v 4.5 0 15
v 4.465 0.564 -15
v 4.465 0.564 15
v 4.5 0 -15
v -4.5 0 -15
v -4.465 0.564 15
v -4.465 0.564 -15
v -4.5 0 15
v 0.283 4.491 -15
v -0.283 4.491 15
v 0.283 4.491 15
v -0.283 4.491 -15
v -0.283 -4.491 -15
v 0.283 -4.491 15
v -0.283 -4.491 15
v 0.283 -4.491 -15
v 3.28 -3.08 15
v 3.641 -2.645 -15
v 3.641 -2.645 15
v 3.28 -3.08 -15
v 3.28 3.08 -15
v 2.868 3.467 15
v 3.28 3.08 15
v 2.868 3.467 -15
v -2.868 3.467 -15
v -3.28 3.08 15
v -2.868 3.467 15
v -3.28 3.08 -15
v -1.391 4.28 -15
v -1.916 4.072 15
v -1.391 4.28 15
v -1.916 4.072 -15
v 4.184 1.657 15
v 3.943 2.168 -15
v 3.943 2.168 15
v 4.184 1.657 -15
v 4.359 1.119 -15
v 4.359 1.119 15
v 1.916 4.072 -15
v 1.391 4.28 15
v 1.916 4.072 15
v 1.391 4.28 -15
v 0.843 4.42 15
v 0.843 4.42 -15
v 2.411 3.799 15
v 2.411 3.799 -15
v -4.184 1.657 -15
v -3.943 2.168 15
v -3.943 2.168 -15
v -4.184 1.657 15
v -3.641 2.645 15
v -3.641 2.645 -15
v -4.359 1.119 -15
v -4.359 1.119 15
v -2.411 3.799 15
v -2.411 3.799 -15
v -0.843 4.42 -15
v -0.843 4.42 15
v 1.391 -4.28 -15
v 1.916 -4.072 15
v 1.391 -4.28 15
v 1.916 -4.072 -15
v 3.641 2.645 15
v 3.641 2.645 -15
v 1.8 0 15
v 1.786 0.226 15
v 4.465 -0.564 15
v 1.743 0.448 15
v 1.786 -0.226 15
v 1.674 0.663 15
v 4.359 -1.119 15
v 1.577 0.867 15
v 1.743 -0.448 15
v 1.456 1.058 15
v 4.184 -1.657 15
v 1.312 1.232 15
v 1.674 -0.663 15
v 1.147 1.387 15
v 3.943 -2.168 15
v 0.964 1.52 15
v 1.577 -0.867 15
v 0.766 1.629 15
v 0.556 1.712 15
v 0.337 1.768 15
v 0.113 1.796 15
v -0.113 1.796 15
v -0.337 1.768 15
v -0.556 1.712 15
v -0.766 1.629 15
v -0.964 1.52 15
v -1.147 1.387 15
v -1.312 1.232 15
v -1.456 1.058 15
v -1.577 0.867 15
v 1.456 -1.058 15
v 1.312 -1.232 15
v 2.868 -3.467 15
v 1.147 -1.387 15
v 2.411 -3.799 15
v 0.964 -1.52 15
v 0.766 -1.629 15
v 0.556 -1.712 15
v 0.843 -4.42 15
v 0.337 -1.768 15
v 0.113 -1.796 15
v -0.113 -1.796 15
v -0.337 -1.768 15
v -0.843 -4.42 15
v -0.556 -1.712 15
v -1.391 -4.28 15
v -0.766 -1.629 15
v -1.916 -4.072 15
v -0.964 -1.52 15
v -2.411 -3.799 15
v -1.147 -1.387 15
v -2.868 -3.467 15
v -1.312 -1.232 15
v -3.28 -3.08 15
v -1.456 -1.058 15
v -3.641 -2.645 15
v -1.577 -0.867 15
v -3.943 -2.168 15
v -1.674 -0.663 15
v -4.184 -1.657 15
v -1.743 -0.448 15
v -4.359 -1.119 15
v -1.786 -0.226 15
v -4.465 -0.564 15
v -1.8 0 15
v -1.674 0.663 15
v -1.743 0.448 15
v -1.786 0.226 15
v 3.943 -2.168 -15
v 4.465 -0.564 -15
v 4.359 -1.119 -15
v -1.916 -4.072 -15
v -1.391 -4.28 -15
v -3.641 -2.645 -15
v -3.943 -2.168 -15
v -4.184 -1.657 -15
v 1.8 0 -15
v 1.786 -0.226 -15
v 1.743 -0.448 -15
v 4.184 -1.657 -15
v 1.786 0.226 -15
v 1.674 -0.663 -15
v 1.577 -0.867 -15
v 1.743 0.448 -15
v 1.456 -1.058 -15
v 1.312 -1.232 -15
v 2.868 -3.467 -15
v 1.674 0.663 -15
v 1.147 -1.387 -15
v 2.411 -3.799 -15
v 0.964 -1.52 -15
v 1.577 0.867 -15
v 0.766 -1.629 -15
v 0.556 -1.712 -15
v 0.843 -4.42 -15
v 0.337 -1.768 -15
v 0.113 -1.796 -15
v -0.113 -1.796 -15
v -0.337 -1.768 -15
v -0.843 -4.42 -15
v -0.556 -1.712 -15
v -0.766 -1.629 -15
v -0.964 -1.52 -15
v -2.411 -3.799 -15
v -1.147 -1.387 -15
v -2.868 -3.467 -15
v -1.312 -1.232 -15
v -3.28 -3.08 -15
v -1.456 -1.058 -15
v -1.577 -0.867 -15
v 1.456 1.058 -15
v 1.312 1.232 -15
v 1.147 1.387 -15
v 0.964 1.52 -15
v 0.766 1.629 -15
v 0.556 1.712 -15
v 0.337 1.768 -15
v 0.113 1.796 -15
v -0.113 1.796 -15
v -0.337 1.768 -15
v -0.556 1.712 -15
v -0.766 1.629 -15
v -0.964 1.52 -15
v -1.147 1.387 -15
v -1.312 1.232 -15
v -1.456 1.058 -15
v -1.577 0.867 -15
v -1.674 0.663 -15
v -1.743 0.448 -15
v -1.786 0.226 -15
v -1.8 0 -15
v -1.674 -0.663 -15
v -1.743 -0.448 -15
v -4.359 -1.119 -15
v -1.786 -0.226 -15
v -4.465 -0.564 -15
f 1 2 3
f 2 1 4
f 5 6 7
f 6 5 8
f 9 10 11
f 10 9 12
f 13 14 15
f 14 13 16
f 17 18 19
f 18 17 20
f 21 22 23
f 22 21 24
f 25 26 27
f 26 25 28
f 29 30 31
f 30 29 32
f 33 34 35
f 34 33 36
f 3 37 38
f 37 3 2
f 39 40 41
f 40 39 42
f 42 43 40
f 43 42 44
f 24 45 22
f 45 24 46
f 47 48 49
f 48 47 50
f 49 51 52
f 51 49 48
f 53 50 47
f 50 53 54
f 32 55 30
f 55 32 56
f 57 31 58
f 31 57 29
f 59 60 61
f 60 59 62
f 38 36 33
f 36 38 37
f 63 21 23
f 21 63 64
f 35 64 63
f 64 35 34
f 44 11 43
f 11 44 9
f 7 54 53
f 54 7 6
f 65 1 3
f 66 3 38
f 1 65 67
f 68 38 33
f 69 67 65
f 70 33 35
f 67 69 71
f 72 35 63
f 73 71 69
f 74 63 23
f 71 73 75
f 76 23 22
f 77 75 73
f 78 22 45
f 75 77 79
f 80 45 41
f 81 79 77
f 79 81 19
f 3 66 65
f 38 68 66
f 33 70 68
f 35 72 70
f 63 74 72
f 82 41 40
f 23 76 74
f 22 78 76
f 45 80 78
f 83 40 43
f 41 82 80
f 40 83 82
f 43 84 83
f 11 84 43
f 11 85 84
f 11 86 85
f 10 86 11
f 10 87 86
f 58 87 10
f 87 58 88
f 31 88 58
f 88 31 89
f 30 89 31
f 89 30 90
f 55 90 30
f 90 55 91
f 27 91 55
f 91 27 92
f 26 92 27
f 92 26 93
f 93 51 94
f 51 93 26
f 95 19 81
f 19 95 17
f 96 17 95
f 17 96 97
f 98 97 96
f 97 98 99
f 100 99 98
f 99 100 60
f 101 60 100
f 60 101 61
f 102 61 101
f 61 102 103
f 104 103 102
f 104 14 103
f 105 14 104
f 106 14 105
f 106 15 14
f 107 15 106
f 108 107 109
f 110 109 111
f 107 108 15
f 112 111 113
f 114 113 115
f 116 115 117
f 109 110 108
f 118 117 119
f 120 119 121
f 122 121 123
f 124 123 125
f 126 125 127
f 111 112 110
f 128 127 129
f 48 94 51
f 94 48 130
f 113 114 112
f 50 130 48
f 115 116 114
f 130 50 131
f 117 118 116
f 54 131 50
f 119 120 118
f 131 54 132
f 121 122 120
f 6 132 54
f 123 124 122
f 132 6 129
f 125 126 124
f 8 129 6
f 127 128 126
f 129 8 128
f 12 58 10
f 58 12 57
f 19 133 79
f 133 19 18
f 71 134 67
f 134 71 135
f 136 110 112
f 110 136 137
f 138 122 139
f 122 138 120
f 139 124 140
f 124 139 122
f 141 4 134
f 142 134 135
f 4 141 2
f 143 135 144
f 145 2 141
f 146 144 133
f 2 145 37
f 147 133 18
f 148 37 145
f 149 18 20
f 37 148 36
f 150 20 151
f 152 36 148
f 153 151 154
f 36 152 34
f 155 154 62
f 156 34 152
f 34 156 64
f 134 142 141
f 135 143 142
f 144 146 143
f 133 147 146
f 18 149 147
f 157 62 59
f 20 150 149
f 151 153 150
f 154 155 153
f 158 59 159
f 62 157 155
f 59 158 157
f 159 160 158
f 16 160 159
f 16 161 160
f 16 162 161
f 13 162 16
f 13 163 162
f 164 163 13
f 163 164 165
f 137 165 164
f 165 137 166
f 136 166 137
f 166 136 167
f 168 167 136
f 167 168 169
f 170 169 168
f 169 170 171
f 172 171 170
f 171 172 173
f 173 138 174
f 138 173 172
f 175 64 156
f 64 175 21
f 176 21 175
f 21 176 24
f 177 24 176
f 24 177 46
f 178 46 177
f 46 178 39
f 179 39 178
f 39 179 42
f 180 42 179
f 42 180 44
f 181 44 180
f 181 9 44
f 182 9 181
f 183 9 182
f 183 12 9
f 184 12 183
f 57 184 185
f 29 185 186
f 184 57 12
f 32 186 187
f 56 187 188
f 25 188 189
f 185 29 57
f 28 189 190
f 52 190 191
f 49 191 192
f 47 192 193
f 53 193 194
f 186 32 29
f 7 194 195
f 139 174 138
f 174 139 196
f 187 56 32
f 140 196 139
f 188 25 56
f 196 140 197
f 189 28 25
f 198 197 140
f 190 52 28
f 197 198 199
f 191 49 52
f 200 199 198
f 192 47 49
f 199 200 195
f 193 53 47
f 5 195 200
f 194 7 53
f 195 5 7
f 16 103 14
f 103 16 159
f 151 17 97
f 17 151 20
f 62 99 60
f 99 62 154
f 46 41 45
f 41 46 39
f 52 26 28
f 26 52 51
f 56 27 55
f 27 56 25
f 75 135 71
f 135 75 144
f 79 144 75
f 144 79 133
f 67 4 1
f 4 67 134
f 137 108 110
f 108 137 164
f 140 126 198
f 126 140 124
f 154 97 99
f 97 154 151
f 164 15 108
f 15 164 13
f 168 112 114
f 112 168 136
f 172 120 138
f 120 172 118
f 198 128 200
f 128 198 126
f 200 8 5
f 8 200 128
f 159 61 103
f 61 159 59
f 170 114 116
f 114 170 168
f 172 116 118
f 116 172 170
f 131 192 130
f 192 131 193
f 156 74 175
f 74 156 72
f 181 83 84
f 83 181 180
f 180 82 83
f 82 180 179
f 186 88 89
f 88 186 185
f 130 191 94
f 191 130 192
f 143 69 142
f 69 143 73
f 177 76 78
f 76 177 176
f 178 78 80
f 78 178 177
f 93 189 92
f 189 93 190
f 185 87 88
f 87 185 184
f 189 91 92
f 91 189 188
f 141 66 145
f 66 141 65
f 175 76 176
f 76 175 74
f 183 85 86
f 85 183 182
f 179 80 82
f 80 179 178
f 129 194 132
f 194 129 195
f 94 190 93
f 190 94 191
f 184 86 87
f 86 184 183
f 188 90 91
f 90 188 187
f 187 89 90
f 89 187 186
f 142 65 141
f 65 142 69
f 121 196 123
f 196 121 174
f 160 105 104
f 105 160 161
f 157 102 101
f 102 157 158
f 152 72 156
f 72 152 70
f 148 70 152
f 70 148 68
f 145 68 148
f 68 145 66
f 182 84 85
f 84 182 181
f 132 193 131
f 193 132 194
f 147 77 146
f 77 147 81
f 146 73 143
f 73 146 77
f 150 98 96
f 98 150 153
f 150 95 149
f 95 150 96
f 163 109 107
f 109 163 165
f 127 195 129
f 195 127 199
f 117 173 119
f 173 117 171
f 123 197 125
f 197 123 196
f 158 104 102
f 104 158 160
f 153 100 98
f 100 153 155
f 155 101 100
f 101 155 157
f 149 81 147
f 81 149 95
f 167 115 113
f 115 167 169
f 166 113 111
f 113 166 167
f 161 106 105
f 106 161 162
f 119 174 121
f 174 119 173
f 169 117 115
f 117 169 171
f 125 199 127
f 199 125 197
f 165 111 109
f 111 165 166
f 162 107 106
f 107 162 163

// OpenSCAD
$fn = 50;


difference() {
	union() {
		translate(v = [0, 0, -15.0000000000]) {
			cylinder(h = 30, r = 4.5000000000);
		}
	}
	union() {
		translate(v = [0, 0, -100.0000000000]) {
			cylinder(h = 200, r = 1.8000000000);
		}
	}
}
